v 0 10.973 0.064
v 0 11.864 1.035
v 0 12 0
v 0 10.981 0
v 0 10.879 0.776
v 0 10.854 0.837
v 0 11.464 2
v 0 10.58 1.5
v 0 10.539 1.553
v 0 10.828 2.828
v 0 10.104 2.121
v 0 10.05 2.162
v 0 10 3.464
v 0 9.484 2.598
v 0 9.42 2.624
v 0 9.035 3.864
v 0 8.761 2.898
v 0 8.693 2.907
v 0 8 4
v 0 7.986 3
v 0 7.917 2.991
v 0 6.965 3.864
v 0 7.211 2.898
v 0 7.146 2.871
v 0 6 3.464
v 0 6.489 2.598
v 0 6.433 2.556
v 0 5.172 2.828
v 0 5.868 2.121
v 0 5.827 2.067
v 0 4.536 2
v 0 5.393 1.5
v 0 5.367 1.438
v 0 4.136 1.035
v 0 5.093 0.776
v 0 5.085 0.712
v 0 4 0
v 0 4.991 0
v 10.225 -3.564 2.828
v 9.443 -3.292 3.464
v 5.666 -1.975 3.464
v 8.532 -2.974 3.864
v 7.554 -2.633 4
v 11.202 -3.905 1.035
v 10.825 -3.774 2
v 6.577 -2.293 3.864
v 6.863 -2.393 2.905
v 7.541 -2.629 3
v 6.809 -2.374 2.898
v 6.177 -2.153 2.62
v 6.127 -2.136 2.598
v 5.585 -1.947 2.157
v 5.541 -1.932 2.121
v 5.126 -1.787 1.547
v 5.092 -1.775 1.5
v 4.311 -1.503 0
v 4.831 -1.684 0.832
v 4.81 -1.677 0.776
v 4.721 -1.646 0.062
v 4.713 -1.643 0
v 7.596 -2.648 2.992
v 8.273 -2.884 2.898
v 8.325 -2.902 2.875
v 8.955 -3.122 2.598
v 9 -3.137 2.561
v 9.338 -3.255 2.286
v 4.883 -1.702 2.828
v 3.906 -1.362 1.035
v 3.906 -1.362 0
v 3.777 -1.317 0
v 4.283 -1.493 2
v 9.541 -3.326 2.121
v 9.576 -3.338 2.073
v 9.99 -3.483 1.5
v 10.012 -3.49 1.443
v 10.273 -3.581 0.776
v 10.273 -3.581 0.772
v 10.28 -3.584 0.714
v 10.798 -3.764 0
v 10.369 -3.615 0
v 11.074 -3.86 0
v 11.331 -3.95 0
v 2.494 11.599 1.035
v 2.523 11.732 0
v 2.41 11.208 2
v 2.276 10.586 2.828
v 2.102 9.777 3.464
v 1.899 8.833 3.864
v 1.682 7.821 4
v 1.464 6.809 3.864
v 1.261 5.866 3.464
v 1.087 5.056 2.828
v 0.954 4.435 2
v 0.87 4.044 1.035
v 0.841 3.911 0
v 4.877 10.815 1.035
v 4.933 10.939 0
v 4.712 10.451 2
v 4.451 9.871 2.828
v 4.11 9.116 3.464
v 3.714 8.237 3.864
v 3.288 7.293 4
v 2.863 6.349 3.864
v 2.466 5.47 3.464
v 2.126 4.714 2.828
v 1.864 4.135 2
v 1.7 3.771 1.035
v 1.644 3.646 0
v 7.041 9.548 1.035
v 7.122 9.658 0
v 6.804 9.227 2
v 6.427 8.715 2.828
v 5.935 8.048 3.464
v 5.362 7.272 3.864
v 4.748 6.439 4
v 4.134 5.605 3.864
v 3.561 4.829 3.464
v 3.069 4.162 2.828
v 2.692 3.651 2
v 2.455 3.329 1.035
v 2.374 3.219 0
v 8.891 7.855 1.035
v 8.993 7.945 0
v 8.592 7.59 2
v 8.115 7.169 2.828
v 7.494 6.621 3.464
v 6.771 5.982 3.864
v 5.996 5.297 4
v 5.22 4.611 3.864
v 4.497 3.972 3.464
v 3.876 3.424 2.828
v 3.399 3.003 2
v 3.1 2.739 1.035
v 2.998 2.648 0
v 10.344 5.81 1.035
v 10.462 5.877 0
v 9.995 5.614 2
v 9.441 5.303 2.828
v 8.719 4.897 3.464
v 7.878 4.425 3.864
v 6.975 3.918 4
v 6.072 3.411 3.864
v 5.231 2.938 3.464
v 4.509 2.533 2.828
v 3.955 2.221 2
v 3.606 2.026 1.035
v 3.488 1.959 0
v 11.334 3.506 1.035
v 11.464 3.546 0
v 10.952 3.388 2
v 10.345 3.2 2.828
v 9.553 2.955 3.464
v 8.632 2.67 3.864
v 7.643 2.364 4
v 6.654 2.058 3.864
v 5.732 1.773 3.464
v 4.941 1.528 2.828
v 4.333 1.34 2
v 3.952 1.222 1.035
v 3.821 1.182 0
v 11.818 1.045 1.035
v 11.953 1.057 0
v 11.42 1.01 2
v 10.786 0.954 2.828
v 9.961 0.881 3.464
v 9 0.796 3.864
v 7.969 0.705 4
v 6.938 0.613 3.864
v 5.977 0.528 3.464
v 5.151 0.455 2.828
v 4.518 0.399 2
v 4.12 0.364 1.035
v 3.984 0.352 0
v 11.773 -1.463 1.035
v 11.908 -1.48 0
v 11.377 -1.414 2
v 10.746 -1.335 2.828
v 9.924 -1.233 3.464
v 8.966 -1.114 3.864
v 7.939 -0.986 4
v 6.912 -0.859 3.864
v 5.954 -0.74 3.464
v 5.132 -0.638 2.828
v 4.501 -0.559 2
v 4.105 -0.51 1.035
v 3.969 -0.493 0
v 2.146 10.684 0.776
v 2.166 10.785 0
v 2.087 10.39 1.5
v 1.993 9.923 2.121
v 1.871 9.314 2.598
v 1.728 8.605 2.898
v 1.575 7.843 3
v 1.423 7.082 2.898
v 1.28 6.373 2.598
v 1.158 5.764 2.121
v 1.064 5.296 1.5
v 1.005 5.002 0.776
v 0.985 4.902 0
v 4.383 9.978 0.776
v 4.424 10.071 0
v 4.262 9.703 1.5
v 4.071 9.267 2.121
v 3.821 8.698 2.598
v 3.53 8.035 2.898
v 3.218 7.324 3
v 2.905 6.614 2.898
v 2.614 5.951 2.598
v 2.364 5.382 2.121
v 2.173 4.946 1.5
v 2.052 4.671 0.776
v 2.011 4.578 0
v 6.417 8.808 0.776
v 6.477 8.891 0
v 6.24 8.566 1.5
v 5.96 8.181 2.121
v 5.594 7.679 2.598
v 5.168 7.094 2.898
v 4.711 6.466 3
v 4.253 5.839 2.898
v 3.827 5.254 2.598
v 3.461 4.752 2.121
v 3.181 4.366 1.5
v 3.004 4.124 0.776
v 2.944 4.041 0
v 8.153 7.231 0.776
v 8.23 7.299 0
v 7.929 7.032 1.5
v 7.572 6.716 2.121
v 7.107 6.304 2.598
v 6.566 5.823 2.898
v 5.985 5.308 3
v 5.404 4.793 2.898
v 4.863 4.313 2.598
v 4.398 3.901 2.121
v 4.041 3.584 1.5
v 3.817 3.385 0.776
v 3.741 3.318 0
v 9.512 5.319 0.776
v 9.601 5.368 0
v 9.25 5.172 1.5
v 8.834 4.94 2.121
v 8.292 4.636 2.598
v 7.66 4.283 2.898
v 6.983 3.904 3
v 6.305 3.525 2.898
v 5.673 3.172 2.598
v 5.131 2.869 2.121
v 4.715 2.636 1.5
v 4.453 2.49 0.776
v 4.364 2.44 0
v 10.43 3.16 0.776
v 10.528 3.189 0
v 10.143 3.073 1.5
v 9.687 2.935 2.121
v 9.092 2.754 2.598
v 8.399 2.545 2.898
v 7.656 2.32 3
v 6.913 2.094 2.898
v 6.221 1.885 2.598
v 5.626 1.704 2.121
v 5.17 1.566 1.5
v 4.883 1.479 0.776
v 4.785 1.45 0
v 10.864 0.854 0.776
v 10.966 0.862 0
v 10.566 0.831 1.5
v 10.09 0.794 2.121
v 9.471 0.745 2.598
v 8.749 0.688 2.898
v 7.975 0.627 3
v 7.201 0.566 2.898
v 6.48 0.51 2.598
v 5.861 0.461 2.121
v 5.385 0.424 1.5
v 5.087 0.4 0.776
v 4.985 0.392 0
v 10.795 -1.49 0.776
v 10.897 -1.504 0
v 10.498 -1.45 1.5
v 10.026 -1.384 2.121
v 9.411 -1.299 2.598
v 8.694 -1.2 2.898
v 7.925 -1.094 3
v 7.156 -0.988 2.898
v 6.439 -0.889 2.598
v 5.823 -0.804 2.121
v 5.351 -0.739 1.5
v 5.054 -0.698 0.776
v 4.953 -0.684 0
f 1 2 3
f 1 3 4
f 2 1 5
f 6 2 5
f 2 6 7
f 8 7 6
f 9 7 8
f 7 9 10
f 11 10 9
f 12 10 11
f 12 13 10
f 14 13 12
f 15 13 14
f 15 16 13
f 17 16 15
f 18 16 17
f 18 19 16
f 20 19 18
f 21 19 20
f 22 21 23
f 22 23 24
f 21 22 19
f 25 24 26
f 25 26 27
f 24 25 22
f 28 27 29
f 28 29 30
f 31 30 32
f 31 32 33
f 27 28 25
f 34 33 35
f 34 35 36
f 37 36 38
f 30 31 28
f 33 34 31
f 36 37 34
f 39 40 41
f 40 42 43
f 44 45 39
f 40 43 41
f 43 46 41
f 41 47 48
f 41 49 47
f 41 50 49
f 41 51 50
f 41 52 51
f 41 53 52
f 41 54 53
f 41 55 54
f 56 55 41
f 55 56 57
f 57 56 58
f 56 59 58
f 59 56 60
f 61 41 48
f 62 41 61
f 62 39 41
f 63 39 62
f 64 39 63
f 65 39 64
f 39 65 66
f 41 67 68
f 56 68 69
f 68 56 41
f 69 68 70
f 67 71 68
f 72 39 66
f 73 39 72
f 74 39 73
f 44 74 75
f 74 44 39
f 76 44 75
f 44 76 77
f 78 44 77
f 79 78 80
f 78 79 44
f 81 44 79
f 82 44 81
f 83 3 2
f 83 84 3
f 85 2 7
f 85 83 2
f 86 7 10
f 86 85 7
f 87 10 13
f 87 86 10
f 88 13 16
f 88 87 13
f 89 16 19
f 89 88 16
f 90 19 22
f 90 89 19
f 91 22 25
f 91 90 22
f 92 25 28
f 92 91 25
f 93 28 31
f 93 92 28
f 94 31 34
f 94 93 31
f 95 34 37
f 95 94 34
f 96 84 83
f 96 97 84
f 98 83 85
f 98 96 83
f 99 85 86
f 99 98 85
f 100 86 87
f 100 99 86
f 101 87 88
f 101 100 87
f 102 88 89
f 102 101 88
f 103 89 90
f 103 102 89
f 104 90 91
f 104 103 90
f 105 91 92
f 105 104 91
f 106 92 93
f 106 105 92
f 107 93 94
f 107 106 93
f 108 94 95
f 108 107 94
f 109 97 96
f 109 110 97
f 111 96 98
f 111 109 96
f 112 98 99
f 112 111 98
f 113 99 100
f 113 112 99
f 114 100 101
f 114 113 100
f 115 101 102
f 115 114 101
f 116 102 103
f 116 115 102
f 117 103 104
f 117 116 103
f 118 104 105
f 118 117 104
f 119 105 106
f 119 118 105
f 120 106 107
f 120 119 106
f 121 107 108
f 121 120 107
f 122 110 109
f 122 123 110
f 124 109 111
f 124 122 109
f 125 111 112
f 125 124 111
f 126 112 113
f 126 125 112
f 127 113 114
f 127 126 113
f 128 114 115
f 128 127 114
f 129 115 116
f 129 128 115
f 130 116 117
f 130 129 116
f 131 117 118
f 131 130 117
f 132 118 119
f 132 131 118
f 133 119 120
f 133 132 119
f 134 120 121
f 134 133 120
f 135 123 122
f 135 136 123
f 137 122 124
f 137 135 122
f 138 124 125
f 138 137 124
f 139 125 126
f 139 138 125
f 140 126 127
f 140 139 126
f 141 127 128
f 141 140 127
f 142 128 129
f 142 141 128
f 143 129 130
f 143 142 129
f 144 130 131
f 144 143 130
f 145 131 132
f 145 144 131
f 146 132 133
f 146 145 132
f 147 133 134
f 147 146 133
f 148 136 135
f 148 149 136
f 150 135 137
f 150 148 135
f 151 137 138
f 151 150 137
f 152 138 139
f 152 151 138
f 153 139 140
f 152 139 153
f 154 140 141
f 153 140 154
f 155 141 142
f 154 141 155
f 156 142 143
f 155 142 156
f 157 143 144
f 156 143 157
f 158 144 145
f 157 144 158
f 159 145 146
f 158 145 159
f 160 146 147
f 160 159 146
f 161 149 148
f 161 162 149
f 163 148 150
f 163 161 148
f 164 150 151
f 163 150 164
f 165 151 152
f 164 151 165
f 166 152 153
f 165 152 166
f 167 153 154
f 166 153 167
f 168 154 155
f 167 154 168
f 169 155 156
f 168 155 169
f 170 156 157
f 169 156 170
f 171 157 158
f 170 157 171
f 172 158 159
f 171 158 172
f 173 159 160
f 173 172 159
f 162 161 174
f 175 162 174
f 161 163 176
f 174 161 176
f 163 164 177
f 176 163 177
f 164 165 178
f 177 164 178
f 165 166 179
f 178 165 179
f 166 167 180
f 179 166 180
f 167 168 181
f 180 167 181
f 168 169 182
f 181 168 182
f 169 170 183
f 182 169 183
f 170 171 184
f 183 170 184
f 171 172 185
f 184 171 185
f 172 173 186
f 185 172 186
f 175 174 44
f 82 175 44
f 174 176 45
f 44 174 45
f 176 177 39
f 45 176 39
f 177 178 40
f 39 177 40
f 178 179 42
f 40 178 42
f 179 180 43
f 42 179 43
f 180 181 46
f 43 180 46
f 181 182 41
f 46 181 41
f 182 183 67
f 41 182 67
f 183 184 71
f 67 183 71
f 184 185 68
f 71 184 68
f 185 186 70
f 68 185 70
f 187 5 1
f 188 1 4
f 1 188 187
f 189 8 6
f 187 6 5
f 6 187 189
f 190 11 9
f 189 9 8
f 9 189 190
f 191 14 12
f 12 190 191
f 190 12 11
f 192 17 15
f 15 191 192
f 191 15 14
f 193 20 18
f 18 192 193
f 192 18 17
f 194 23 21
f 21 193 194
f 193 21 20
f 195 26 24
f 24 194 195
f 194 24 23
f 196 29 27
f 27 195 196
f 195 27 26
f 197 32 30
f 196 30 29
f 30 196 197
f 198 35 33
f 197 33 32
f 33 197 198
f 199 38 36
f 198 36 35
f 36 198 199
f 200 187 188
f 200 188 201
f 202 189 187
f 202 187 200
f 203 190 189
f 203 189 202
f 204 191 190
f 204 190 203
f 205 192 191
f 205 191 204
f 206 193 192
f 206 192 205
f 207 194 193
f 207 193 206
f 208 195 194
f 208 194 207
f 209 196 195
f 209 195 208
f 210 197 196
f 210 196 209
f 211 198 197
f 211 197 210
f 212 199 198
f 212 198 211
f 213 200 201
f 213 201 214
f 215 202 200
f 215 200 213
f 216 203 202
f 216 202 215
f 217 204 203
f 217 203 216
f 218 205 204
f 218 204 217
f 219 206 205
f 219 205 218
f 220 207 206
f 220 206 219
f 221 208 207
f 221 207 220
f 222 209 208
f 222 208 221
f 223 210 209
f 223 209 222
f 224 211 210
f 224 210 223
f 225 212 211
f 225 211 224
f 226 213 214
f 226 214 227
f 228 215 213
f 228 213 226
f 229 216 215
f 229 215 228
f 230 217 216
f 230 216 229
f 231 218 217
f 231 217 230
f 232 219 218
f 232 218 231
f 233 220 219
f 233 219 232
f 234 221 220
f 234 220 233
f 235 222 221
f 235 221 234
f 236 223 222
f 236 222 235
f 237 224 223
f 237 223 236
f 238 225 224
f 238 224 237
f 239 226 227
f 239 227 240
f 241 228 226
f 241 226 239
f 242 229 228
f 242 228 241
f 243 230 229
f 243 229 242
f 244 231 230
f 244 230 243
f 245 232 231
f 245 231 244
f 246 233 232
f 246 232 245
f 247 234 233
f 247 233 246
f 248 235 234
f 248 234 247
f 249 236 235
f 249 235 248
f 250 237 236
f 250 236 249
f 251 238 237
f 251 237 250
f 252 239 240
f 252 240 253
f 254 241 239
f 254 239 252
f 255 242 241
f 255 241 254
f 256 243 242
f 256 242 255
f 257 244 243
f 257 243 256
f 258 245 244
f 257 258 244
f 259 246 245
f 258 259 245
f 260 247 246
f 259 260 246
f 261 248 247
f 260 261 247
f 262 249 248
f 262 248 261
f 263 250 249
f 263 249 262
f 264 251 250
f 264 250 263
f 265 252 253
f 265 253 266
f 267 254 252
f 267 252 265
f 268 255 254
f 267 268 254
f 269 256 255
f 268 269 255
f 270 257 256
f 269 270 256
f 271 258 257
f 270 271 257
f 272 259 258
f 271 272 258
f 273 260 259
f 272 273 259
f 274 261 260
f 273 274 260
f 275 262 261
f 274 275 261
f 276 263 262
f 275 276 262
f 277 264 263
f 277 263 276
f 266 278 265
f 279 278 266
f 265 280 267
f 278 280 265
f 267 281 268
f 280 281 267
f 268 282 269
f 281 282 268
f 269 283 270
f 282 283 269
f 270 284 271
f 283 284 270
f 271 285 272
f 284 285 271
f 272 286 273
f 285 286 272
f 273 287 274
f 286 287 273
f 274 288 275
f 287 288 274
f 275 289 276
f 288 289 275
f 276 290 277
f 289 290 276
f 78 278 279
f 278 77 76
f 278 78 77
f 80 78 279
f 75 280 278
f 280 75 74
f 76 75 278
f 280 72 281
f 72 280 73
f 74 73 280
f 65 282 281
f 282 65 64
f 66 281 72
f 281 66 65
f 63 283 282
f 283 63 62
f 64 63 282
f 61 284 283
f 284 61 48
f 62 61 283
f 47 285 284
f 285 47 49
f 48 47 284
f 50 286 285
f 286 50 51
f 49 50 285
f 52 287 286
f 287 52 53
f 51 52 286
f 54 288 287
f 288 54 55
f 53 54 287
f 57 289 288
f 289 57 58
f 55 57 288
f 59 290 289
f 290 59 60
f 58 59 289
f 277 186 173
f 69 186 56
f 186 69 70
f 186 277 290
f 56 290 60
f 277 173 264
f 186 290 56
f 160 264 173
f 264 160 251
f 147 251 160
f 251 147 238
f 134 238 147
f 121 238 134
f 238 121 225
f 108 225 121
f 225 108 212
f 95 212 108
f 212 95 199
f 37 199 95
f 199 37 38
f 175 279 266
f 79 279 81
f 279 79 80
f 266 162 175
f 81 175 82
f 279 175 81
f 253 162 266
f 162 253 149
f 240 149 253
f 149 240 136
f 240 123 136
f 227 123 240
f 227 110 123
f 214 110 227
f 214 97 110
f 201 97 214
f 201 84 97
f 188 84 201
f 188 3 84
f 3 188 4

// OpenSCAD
// file: ../build_environments.scad
// build_environments.scad: modules to build level sections
//

module pool(diameter=10.0, wall_height=2.0, step_width=3.0, connections=[])
{
    difference() {
        union() {
        difference() {
            cylinder(h=0.5,r1=diameter+step_width,r2=diameter+step_width,$fn=48);
            translate([0,0,-0.1])
                cylinder(h=0.7,r1=diameter,r2=diameter,$fn=48);
        }
        difference() {
            cylinder(h=wall_height,r1=diameter+step_width+1.0,r2=diameter+step_width+1.0,$fn=48);
            translate([0,0,-0.1])
                cylinder(h=wall_height+0.2,r1=diameter+step_width,r2=diameter+step_width,$fn=48);
        }
        }
    
        for (c = connections)
        {
            rotate([0,90,0]) {
                angle = atan2(c[1],c[0]);
                rotate([-angle,0,0]) {
                    cylinder(h=diameter+5.0,r1=c[2],r2=c[2],$fn=48);
                }
            }
        }
    }
}

module straight(length=10.0, width=2.0, dy1=0.0, dy2=0.0, dz=0.0)
{
    dims = [0, 0, 0, 0, 0, (dz/length)];
    matrix = [
        [ 1, dims[0], dims[1], 0 ],
        [ dims[2], 1, dims[4], 0 ],
        [ dims[5], dims[3], 1, 0 ],
        [ 0, 0, 0, 1 ]
    ];
    multmatrix(matrix)
    difference() {
        translate([dy1,0,0])
        union() {
            rotate([0,90,0]) {
                difference() {
                    cylinder(h=(length-dy1-dy2),r1=width+1.0,r2=width+1.0,$fn=24);
                    translate([0,0,-0.1])
                        cylinder(h=(length-dy1-dy2+0.2),r1=width,r2=width,$fn=24);
                }
                difference() {
                    cylinder(h=1.0,r1=width+2.0,r2=width+2.0,$fn=24);
                    translate([0,0,-0.1])
                        cylinder(h=1.2,r1=width,r2=width,$fn=24);
                }
                translate([0,0,(length-dy1-dy2)-1.0]) {
                    difference() {
                        cylinder(h=1.0,r1=width+2.0,r2=width+2.0,$fn=24);
                        translate([0,0,-0.1])
                            cylinder(h=1.2,r1=width,r2=width,$fn=24);
                    }
                }
            }
        }
        translate([0,0,-(2*width+4.0)/2])
            cube([3*length,3*length,2*width+4.0],center=true);
    }
}

module curve(p0=[0,0], center=[0,0], dir=1, angle=0.0, width=2.0)
{
    radius = sqrt((p0[0]-center[0])*(p0[0]-center[0]) + (p0[1]-center[1])*(p0[1]-center[1]));
    if (dir == 0) {
        difference() {
            rotate([0,0,-90])
            difference() {
                rotate_extrude(angle = angle, convexity = 10, $fn=32)
                    translate([radius, 0, 0])
                        circle(r = width+1.0,$fn=24);
                rotate([0,0,-1.0])
                    rotate_extrude(angle = angle+2.0, convexity = 10, $fn=32)
                        translate([radius, 0, 0])
                            circle(r = width,$fn=24);
            }
            translate([0,0,-(2*width+4.0)/2])
                cube([5*radius,5*radius,2*width+4.0],center=true);
        }
    }
    else {
        difference() {
            rotate([0,0,90])
            difference() {
                rotate_extrude(angle = -angle, convexity = 10, $fn=32)
                    translate([radius, 0, 0])
                        circle(r = width+1.0,$fn=24);
                rotate([0,0,1.0])
                    rotate_extrude(angle = -angle-2.0, convexity = 10, $fn=32)
                        translate([radius, 0, 0])
                            circle(r = width,$fn=24);
            }
            translate([0,0,-(2*width+4.0)/2])
                cube([5*radius,5*radius,2*width+4.0],center=true);
        }
    }

}

// test pool
//pool(diameter=12.0000, wall_height=3.0000, step_width=3.0000, connections=[[0.0000,-26.0000,2.0000], [23.6074,0.0000,2.0000]]);

// test straight, slope
//straight(length=26.0000, width=2.0000, dy1=11.8322, dy2=6.7082, dz=0.0000);
//straight(length=29.1549, width=12.0000, dy1=0.0000, dy2=0.0000, dz=-15.0000);

// test curve
//curve(p0=[23.6074, 0.0000], center=[23.6074, 5.0000], dir=0, angle=60.1011, width=2.0000);
//curve(p0=[33.6426, 12.4219], center=[37.9771, 9.9295], dir=1, angle=120.4627, width=2.0000);
// main file
use <../build_environments.scad>;
curve(p0=[-36.5305, 76.4857], center=[-33.5399, 69.0657], dir=1, angle=109.2186, width=3.0000);
